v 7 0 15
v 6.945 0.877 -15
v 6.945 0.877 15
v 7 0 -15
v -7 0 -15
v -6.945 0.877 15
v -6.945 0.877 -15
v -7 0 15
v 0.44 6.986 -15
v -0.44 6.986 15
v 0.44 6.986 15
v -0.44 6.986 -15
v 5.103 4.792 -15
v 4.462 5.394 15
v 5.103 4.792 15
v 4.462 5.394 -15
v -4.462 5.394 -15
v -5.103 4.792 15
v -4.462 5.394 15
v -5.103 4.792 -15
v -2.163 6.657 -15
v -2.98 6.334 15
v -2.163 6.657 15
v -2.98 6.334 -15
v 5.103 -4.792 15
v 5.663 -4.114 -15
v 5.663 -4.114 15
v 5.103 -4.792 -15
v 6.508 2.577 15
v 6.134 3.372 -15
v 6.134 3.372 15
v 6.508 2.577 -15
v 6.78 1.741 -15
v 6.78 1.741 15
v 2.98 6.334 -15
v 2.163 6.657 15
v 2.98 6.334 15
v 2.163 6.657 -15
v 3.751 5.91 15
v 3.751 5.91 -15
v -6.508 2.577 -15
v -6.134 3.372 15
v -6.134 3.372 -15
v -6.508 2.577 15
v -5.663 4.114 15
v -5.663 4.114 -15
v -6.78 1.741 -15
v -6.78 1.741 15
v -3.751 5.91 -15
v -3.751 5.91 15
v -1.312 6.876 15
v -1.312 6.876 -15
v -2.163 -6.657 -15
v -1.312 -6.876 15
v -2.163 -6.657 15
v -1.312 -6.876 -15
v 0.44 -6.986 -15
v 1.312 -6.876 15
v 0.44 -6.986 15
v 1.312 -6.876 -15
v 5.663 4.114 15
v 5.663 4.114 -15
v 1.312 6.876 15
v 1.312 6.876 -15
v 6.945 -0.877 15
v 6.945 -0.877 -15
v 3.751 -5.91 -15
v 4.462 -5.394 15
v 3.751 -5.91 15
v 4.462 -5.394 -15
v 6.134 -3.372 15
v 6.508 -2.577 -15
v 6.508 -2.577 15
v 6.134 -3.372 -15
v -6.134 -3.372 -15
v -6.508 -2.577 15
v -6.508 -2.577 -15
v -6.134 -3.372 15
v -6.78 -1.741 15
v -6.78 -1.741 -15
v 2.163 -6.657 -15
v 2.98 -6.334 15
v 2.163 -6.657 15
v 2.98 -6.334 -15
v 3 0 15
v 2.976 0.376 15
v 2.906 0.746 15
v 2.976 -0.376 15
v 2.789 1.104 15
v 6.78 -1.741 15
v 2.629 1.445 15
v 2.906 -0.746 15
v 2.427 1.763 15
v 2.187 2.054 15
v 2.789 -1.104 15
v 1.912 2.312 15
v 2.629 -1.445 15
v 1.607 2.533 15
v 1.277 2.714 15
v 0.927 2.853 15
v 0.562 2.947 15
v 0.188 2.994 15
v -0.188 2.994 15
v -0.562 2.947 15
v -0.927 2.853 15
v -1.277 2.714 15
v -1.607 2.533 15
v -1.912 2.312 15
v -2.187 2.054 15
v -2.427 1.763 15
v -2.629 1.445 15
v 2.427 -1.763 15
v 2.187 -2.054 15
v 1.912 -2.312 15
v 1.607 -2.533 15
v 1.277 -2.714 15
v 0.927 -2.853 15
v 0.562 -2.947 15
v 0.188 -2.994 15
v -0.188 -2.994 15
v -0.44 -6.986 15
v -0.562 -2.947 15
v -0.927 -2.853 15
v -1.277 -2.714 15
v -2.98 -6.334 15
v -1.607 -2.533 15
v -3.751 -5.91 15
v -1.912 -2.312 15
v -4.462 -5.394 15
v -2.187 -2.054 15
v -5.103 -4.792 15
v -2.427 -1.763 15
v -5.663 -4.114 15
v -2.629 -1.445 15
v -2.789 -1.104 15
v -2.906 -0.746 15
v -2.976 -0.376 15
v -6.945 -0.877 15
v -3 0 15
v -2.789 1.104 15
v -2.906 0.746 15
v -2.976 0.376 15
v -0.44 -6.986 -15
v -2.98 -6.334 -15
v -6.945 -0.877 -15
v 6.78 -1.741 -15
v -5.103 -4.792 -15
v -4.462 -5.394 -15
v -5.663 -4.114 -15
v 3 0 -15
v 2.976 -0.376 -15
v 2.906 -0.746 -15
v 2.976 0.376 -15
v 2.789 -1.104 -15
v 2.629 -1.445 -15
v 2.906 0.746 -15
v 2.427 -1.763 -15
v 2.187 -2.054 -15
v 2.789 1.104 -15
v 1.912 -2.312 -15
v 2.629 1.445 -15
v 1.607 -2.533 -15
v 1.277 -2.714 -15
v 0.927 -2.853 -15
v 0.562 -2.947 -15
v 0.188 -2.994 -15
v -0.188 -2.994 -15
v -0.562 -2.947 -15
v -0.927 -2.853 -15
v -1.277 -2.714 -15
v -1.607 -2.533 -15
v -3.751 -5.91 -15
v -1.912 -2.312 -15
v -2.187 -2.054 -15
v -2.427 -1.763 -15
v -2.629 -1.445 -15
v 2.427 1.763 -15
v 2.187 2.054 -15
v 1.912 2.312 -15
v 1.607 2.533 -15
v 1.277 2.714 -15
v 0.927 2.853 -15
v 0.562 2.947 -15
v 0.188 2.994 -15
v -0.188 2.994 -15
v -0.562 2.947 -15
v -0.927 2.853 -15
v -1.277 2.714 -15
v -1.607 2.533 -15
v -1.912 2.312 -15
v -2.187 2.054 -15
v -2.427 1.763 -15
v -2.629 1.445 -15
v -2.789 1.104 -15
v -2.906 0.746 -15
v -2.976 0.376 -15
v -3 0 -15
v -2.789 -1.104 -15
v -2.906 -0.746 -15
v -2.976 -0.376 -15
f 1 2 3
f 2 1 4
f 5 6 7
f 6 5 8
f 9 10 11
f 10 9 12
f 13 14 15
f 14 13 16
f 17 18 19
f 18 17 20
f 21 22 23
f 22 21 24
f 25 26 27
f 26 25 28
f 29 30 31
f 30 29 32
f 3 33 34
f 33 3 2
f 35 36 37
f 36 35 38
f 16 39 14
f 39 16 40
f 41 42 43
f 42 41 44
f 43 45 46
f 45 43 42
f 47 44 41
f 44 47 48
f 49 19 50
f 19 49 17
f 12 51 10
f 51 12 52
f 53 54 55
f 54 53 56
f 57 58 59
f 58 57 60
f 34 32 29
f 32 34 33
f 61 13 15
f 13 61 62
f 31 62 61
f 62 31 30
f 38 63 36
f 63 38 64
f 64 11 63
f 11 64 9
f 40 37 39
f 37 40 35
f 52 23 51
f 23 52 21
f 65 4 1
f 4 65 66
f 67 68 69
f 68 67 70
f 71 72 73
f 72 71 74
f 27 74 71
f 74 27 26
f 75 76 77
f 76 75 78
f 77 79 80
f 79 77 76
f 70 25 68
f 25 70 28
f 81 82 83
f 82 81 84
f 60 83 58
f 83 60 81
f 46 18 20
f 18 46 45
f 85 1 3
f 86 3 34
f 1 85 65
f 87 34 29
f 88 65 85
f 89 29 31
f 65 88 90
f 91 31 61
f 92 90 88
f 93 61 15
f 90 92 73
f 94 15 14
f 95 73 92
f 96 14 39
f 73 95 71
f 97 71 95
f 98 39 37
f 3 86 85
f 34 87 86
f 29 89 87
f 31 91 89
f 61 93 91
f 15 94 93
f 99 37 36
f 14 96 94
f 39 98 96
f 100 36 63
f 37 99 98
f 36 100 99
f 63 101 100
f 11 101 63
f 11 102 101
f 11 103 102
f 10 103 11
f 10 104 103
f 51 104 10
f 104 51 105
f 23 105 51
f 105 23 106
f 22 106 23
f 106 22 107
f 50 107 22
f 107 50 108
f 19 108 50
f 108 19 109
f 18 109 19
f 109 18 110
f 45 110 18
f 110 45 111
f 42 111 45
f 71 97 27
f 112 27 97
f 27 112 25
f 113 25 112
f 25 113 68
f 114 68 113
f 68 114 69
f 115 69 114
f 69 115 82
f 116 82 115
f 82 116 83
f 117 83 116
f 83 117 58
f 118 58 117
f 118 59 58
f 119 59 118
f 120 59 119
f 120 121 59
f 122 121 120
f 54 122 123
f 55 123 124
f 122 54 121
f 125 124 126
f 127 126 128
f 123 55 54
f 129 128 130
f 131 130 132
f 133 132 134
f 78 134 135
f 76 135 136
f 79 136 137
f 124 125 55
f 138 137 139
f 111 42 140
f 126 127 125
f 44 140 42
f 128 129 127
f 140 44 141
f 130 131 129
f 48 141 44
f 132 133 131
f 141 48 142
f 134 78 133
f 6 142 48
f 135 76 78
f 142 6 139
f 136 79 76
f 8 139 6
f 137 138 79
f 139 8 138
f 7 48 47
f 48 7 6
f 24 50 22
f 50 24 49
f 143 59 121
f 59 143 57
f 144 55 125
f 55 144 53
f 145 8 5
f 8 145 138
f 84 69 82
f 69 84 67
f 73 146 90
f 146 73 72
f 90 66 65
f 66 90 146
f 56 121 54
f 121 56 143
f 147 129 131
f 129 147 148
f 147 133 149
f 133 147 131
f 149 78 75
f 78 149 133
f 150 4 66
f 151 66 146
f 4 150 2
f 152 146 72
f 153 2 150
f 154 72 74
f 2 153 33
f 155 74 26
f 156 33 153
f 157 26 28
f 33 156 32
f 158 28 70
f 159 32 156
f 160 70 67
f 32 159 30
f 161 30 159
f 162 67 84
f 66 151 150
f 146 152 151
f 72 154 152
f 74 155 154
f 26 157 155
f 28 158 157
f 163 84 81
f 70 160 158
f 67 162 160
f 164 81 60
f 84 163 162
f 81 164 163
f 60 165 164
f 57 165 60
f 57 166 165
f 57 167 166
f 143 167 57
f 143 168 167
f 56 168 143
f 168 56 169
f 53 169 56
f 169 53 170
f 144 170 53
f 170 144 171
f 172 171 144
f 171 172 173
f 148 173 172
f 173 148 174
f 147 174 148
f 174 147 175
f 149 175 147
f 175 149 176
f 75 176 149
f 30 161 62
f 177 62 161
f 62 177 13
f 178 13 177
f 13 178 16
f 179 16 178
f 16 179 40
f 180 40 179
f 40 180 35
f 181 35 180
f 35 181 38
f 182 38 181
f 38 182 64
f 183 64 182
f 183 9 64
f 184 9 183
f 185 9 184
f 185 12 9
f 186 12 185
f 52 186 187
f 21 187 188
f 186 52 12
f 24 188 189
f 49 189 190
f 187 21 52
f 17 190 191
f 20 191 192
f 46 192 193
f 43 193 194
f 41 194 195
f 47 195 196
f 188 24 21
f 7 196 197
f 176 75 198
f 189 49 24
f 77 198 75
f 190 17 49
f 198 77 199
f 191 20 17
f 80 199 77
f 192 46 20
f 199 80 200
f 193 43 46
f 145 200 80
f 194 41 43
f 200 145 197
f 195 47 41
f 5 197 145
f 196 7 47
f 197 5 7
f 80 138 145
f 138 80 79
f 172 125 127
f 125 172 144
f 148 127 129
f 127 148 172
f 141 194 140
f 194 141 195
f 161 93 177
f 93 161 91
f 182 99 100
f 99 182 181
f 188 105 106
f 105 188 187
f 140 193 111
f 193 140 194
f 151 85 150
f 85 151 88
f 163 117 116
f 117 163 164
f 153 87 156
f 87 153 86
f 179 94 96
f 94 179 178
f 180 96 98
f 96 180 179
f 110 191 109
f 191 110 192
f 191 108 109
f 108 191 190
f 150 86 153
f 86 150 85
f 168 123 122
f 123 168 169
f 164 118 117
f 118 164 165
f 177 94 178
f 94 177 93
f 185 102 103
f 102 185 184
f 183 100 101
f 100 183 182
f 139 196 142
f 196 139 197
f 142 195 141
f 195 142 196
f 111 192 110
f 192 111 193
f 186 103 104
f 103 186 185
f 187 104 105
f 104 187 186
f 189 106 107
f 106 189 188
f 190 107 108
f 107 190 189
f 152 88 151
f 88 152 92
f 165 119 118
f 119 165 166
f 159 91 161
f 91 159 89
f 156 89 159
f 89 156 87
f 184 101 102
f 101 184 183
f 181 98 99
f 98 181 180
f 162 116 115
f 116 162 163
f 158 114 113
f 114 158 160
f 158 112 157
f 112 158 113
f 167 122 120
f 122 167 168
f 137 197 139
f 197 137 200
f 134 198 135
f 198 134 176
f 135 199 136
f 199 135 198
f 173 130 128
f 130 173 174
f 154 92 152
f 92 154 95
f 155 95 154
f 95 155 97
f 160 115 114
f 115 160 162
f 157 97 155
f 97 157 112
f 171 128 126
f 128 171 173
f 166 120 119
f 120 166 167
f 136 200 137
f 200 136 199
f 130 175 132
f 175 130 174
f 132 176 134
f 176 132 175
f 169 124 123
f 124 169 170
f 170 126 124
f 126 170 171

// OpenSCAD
$fn = 50;


difference() {
	union() {
		translate(v = [0, 0, -15.0000000000]) {
			cylinder(h = 30, r = 7.0000000000);
		}
	}
	union() {
		translate(v = [0, 0, -100.0000000000]) {
			cylinder(h = 200, r = 3.0000000000);
		}
	}
}
